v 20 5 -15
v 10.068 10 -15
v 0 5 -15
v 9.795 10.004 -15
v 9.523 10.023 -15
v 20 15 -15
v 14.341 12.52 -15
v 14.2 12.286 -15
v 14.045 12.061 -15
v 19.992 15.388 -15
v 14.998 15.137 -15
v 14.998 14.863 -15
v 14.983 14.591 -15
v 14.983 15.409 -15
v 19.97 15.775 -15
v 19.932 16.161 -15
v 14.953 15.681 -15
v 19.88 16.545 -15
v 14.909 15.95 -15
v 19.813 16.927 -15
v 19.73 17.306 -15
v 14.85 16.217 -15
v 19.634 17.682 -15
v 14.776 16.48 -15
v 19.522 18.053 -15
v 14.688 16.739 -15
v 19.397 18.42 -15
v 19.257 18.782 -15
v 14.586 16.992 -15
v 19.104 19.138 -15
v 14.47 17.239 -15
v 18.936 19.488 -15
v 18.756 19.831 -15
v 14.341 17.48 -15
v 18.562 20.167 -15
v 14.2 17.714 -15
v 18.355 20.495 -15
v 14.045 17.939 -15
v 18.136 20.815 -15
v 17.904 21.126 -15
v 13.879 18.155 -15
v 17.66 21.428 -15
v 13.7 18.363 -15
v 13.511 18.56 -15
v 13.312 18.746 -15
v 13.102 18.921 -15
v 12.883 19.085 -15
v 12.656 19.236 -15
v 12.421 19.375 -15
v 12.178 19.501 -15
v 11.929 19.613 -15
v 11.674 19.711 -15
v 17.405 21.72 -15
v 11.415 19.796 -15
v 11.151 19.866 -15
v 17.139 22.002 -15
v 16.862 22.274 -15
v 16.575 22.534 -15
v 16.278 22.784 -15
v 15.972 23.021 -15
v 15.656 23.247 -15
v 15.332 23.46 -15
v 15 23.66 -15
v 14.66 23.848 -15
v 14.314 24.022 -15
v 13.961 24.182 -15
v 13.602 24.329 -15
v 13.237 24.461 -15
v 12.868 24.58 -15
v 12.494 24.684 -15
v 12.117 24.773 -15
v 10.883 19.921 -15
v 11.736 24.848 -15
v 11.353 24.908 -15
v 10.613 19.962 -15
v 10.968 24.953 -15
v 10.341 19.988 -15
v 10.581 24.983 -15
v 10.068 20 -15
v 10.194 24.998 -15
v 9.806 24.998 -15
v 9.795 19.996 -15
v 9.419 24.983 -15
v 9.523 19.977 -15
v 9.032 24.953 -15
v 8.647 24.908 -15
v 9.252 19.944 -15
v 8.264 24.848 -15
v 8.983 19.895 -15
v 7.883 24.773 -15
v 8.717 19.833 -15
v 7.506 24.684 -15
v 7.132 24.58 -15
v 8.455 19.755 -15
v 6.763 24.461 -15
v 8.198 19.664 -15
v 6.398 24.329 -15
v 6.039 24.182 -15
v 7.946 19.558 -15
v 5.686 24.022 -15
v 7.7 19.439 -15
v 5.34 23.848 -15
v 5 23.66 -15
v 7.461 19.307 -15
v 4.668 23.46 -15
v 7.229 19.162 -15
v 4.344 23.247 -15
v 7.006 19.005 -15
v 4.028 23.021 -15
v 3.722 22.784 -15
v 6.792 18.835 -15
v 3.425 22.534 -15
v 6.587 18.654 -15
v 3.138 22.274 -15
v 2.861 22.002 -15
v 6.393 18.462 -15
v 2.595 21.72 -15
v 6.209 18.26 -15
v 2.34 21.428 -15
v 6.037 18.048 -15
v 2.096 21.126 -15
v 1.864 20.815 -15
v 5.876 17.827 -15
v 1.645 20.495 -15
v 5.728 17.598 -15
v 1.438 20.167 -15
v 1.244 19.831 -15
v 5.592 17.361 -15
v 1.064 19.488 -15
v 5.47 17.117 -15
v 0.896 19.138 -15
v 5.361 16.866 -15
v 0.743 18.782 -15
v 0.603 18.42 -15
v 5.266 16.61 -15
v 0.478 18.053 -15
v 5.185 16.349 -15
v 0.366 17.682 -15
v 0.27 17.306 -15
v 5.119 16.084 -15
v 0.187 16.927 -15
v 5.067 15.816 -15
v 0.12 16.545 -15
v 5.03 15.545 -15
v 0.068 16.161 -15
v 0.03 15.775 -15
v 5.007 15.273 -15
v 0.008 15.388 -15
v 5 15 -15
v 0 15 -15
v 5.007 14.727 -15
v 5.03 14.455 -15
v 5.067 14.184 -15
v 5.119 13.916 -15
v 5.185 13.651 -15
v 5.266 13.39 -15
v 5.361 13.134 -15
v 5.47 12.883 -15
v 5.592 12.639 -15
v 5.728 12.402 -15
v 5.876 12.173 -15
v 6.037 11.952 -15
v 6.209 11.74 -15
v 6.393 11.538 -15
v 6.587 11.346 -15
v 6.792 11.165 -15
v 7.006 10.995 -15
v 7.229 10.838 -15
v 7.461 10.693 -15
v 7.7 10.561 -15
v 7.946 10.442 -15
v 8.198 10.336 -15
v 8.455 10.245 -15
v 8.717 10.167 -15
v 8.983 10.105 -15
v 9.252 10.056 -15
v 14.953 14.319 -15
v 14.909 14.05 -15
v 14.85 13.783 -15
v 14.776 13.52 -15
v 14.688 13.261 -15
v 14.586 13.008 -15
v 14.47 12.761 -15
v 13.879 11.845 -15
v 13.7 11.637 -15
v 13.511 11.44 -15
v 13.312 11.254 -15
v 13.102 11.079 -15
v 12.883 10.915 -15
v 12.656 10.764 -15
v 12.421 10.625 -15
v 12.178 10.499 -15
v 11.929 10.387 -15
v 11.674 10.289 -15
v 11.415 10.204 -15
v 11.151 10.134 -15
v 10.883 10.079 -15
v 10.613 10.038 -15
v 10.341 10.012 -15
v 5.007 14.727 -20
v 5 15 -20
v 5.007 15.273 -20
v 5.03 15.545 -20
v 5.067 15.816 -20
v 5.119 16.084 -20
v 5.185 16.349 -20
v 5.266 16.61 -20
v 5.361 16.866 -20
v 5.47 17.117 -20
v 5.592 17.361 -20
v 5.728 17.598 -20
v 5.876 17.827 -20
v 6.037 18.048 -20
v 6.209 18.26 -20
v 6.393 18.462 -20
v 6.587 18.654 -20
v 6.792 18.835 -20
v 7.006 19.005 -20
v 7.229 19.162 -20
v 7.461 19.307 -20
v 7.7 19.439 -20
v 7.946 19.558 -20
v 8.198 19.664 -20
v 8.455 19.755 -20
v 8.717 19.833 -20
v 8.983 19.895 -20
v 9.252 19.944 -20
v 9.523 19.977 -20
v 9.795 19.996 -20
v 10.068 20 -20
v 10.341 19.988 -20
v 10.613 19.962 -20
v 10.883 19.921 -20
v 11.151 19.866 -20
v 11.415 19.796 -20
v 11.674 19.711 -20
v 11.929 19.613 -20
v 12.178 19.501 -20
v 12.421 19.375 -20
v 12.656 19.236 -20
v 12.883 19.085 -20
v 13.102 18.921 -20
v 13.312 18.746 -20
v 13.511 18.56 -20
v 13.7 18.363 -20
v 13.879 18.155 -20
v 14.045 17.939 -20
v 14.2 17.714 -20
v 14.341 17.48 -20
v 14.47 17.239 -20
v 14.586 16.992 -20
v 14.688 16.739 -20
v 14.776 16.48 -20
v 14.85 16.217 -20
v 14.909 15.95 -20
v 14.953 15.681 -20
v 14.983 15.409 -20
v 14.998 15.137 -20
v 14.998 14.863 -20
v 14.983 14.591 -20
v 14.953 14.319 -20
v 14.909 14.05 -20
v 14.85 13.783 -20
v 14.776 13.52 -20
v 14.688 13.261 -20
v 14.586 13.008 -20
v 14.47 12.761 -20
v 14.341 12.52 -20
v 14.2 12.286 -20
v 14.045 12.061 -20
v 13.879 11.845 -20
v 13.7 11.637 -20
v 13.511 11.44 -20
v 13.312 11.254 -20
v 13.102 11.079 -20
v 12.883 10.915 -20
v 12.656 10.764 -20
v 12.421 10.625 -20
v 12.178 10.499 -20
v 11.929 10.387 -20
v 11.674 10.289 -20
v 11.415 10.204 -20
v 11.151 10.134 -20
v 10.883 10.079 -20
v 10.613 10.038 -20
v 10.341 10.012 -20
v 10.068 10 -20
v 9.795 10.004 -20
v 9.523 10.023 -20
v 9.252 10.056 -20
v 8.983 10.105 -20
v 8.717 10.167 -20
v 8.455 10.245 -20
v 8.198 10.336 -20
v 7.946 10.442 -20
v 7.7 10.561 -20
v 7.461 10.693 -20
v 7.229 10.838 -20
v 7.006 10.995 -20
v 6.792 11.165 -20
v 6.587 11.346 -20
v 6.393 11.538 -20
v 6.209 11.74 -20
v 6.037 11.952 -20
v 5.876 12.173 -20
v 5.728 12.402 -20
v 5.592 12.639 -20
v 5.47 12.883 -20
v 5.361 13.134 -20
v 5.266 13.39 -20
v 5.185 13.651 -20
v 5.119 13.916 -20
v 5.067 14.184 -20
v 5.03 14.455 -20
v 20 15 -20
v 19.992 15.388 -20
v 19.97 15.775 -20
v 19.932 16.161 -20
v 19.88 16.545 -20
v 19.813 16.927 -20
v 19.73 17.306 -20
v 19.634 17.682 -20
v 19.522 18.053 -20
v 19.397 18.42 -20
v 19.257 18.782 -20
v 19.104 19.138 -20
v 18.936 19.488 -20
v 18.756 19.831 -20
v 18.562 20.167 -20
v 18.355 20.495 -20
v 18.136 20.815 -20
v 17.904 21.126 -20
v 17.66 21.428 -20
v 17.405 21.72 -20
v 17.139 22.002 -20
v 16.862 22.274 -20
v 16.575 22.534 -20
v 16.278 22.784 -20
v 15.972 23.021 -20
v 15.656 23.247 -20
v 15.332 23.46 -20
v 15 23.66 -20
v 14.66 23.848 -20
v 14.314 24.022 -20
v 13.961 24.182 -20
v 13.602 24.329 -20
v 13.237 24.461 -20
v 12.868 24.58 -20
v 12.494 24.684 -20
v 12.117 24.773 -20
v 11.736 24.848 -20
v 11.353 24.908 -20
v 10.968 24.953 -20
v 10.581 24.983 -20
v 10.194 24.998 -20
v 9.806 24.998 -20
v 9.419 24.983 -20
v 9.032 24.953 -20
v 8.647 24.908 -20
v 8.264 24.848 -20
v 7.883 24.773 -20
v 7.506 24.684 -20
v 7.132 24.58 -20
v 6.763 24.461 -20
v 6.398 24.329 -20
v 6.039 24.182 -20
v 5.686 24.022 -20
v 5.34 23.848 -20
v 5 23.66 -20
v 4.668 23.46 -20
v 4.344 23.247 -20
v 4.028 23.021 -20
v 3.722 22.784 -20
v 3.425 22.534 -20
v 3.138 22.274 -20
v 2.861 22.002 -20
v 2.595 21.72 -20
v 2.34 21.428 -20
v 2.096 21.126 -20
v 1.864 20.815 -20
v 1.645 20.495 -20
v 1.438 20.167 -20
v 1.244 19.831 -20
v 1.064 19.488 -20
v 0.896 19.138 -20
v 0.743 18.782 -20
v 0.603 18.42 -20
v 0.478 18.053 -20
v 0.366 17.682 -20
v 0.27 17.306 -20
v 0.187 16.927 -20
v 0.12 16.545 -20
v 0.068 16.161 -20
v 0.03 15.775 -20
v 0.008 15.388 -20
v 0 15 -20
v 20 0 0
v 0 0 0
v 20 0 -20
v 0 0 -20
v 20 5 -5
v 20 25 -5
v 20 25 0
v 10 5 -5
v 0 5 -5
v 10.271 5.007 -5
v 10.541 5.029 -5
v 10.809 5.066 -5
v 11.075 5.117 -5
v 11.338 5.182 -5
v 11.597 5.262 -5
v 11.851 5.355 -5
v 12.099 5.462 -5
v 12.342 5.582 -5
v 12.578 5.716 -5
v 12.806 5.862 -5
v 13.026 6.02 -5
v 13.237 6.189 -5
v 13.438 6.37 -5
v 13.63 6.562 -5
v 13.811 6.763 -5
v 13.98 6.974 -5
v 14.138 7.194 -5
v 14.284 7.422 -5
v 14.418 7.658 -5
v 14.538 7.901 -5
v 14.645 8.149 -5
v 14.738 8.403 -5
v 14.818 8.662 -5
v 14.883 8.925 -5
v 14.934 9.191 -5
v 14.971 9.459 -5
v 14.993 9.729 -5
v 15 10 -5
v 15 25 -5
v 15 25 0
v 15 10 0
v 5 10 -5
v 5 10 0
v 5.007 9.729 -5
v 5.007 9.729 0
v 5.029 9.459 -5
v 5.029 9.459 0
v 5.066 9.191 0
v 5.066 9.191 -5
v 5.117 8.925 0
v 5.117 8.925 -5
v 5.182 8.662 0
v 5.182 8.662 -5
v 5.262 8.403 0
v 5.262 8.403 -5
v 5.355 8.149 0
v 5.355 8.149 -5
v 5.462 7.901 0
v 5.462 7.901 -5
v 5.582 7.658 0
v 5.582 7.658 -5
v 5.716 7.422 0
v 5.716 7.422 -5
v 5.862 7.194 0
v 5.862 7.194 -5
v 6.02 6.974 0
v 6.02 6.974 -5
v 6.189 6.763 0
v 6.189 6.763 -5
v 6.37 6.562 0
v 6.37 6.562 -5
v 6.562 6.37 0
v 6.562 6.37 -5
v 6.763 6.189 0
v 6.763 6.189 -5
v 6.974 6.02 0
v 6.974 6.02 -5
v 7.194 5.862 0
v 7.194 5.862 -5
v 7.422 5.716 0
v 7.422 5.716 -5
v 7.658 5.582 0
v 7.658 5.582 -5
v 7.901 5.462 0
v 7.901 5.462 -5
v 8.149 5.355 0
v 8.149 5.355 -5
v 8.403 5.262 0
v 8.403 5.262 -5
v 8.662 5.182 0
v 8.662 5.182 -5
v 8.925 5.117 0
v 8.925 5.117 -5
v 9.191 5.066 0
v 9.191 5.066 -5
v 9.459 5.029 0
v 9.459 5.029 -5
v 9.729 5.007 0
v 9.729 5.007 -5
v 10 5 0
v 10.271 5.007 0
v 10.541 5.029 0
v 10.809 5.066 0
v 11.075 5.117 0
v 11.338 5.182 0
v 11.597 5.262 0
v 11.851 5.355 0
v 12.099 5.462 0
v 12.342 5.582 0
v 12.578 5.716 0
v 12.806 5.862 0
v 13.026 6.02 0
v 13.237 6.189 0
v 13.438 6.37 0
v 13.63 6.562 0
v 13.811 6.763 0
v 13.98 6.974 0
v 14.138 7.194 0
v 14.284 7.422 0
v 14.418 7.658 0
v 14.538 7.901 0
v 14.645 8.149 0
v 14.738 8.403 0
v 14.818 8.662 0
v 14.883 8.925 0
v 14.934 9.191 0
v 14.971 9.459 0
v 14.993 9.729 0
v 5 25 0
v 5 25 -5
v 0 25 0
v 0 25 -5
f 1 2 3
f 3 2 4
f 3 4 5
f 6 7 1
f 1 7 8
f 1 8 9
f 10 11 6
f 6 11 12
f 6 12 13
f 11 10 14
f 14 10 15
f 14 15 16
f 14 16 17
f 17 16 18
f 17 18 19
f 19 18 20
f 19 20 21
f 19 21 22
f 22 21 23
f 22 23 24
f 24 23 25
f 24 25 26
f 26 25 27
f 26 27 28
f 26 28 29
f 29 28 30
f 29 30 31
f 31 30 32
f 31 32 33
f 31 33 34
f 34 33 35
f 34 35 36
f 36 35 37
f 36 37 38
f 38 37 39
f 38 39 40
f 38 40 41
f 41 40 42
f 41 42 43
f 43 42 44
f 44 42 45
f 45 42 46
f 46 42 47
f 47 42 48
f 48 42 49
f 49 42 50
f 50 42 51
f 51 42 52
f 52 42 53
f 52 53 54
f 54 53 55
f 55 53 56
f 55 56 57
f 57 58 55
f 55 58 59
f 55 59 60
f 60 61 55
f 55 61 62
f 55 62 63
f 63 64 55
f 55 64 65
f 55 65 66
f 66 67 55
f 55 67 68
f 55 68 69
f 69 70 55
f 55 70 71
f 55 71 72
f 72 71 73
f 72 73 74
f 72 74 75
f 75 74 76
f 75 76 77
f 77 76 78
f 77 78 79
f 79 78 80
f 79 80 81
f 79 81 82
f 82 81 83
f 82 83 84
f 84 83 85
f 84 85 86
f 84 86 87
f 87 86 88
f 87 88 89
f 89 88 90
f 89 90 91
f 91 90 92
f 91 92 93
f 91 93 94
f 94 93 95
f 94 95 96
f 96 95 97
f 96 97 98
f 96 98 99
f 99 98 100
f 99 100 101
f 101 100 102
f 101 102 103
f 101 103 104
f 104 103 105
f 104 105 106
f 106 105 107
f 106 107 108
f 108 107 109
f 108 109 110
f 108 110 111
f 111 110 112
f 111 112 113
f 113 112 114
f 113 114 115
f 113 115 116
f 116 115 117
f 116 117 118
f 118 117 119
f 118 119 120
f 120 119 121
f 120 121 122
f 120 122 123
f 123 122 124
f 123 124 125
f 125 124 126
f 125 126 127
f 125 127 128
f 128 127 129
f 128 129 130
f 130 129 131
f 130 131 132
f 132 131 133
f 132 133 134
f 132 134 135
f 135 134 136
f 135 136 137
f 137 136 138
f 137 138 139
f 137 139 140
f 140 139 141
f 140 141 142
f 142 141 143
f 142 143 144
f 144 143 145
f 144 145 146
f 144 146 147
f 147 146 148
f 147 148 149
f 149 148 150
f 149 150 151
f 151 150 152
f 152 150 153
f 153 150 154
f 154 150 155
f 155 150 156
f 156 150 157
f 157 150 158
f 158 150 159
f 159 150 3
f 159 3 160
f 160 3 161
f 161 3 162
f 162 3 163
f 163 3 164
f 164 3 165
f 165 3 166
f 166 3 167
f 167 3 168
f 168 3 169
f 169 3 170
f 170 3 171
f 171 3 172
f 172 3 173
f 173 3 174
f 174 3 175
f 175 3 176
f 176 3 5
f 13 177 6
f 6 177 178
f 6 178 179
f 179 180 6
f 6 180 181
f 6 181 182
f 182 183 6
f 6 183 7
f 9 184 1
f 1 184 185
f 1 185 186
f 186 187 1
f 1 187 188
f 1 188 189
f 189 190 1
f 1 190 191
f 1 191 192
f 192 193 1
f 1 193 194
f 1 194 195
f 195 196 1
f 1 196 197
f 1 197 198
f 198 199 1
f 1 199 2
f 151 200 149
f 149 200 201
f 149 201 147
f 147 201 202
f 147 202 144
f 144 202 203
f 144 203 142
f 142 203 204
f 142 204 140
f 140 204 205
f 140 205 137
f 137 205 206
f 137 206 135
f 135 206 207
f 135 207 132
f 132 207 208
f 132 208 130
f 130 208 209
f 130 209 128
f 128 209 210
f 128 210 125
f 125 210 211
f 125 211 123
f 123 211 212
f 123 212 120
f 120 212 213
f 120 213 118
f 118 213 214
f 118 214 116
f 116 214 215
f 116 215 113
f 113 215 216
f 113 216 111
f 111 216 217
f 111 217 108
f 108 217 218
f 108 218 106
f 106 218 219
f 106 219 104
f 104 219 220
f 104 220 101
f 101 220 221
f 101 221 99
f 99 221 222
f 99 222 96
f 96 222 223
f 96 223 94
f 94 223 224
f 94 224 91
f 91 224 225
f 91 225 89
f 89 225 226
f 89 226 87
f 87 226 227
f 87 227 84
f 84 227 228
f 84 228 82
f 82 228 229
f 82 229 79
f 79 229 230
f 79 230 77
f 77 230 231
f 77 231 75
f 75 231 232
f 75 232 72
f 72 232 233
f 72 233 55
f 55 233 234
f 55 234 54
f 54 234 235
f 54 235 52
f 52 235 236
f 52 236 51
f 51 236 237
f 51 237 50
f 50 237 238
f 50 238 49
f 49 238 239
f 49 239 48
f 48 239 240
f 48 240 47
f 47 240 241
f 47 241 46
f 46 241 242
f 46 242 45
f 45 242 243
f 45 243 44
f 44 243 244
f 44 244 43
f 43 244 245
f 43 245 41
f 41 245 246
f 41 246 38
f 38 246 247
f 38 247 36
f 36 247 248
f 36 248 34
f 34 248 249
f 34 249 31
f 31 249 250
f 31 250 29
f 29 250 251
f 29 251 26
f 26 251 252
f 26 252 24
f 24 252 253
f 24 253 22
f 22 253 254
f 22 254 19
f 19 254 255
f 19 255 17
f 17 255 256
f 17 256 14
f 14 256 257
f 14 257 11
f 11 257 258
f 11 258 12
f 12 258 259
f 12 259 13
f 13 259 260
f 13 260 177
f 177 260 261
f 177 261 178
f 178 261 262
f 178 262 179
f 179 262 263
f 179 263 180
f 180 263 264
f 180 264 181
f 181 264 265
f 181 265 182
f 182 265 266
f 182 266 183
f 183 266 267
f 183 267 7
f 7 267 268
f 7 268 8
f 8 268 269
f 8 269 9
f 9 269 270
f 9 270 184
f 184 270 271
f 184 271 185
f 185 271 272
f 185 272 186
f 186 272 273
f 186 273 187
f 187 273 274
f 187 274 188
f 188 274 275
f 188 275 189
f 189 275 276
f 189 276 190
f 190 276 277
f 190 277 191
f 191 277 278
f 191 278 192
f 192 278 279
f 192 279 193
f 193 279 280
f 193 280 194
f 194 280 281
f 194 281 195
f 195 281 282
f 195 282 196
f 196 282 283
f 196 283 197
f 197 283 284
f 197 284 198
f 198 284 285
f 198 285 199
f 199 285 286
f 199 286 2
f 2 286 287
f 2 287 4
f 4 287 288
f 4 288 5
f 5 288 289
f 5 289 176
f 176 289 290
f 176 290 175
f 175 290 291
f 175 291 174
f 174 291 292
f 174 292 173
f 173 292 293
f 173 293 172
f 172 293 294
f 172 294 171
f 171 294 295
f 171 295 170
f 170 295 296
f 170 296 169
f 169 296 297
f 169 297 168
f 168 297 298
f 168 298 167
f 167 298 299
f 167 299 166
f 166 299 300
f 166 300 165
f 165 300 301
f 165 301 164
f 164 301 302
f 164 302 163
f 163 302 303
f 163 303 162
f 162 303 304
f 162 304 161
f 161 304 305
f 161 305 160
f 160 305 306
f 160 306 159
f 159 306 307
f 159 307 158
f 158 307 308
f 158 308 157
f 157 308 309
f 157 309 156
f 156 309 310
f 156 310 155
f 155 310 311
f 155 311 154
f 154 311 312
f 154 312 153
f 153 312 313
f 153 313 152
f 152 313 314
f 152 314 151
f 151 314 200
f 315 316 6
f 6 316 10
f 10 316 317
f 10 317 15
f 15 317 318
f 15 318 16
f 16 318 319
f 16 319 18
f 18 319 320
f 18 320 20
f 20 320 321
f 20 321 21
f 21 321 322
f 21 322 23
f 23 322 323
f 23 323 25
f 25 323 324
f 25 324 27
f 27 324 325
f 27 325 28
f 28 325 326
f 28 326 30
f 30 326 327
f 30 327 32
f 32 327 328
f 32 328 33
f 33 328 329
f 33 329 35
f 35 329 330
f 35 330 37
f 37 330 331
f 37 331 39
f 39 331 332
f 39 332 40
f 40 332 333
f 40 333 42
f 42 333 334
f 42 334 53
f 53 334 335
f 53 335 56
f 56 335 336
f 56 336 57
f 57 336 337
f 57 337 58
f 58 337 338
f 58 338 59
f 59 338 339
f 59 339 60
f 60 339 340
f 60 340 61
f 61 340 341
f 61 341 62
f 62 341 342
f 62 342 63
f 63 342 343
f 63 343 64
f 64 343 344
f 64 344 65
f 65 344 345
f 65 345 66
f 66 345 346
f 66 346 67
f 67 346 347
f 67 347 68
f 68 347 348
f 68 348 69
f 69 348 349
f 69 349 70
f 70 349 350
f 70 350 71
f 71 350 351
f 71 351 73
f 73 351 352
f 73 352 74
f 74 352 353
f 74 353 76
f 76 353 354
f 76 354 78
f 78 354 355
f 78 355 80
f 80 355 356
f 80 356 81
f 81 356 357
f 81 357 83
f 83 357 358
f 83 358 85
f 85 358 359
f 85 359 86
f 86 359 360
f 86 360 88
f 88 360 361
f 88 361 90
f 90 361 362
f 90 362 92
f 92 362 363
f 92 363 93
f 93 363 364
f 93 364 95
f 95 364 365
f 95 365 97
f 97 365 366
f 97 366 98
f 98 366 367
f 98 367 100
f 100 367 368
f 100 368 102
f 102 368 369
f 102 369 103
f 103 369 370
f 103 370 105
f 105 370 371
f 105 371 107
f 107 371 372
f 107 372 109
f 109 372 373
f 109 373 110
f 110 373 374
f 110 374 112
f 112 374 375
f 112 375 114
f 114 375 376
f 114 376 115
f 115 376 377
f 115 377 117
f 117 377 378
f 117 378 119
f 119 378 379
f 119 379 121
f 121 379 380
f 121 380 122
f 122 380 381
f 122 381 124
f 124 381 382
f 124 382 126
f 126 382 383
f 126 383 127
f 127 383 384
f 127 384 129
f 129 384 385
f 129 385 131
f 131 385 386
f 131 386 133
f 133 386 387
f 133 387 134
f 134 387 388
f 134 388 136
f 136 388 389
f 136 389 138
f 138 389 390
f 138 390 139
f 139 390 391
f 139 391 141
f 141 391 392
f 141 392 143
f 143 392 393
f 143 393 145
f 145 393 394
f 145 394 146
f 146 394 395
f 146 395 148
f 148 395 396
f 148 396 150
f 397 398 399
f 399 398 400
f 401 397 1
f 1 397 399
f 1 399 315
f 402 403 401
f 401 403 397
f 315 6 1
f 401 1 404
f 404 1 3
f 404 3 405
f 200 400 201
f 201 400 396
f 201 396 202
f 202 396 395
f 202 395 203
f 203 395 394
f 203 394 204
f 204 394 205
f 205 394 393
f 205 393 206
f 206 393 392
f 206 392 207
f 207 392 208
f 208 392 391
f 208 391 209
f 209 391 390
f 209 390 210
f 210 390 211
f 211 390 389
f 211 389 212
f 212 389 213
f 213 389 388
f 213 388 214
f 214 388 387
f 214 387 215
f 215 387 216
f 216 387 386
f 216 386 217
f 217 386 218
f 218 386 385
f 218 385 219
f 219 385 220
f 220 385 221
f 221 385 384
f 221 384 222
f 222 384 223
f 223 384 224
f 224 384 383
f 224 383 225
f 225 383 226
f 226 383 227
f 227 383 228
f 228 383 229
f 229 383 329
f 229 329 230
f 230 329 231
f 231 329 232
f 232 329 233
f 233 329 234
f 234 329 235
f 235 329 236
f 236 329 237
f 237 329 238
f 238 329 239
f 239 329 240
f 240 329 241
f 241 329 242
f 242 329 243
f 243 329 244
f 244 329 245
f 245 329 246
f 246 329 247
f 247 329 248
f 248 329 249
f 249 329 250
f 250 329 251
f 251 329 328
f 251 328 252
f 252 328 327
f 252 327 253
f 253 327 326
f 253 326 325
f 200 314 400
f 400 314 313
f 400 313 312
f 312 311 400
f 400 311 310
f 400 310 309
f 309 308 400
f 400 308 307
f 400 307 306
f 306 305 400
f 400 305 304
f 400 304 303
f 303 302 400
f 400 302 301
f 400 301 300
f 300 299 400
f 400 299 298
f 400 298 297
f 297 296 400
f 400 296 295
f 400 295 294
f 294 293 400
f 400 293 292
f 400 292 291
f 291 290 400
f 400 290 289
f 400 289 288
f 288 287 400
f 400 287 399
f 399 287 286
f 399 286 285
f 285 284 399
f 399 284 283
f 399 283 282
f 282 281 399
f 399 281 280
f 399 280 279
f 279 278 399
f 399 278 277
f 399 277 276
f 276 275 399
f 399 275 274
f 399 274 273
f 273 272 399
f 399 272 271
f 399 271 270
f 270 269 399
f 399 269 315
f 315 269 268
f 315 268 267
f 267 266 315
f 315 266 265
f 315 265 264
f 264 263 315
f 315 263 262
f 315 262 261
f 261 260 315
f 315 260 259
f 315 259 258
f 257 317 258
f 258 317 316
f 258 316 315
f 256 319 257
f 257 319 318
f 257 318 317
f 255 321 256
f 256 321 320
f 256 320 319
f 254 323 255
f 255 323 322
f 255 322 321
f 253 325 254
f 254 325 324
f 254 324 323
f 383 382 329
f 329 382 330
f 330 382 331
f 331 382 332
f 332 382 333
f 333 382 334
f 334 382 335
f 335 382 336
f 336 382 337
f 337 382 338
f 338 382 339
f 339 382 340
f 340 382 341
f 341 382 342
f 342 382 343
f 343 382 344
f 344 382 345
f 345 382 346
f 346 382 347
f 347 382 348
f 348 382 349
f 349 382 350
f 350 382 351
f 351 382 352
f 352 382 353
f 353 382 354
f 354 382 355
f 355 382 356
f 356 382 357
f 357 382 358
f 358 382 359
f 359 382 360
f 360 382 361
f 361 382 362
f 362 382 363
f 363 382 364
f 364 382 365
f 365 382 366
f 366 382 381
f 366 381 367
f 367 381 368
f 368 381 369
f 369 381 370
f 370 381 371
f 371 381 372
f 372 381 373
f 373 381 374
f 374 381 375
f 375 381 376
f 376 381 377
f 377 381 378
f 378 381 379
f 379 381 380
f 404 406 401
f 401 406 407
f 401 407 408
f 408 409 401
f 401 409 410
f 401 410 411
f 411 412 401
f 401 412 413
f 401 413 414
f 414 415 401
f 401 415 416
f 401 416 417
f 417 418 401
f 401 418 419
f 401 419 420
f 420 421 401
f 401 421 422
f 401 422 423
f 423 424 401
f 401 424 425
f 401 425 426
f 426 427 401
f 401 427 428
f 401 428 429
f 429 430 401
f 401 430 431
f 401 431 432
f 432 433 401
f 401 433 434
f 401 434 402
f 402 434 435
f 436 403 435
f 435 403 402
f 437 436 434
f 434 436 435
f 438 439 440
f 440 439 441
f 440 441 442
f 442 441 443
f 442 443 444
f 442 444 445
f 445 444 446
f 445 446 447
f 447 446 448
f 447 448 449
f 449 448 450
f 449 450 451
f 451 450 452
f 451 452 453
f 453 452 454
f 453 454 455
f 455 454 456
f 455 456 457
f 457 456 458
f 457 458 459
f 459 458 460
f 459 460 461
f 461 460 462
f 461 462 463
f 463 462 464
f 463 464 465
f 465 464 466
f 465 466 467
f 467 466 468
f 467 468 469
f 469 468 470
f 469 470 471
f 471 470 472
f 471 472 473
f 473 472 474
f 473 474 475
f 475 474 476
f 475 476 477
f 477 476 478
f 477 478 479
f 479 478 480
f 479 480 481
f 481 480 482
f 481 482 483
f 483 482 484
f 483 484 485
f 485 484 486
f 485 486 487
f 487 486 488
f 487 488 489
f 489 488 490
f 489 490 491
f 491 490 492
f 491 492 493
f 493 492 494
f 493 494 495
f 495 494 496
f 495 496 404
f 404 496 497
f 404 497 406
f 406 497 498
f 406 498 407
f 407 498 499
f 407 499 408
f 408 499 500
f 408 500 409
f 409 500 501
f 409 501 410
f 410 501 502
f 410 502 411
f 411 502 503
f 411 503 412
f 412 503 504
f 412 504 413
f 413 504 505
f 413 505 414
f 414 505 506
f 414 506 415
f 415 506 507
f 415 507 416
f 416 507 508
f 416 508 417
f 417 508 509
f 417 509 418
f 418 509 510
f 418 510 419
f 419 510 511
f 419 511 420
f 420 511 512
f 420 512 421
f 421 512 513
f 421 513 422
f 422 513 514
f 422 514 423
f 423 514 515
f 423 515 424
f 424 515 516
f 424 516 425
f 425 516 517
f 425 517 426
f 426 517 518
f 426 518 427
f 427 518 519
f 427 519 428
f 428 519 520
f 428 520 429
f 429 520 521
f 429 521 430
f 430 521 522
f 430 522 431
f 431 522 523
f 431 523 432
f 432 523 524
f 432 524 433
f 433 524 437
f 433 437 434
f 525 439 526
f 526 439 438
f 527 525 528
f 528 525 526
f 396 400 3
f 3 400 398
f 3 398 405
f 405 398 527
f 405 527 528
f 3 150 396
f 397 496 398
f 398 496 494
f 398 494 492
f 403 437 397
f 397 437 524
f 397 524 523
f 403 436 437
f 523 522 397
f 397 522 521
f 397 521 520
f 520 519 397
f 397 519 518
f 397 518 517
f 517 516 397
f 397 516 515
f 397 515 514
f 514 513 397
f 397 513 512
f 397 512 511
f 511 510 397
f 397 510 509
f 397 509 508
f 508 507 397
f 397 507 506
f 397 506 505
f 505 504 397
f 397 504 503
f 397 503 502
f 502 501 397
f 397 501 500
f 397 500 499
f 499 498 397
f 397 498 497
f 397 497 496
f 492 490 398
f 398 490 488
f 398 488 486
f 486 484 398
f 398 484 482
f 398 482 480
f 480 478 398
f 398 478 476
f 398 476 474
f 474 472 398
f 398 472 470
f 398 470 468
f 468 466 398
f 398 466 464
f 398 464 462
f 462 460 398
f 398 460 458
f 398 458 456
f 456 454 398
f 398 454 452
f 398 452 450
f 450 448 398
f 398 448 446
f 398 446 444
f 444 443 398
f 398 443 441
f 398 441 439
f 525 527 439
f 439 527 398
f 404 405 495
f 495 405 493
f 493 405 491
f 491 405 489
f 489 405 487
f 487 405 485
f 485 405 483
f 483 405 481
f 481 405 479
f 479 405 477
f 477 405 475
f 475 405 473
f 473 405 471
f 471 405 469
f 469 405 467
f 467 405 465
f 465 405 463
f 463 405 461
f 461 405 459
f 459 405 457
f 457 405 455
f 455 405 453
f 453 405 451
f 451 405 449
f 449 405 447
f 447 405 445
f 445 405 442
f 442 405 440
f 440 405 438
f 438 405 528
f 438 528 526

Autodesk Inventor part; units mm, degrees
ref_plane "YZ Plane" through (0, 0, 0) normal (1, 0, 0) x (0, 1, 0)
ref_plane "XZ Plane" through (0, 0, 0) normal (0, 1, 0) x (-1, 0, 0)
ref_plane "XY Plane" through (0, 0, 0) normal (0, 0, 1) x (1, 0, 0)
sketch "Sketch1" plane through (0, 0, 0) normal (0, 0, 1) x (1, 0, 0)
  line L0 (0, 0) -> (20, 0)
  line L1 (20, 0) -> (20, 25)
  line L2 (20, 25) -> (15, 25)
  line L3 (15, 25) -> (15, 10)
  line L4 (10, 5) -> (10, 5)
  line L5 (5, 10) -> (5, 25)
  line L6 (5, 25) -> (0, 25)
  line L7 (0, 25) -> (0, 0)
  arc A0 (5, 10) -> (10, 5) centre (10, 10) ccw
  arc A1 (10, 5) -> (15, 10) centre (10, 10) ccw
  point P0 (15, 5)
  point P1 (5, 5)
  dimension "d0" = 20
  dimension "d1" = 25
  dimension "d2" = 5
  dimension "d3" = 20
  dimension "d4" = 10
  dimension "d5" = 5
extrude "Extrusion1" add sketch "Sketch1" against normal blind 5
sketch "Sketch2" plane through (0, 0, -5) normal (0, 0, -1) x (-1, 0, 0)
  line L0 (0, 25) -> (0, 0) projected
  line L1 (-20, 25) -> (-20, 0) projected
  line L2 (0, 0) -> (-20, 0)
  line L3 (-20, 0) -> (-20, 5)
  line L4 (-20, 5) -> (0, 5)
  line L5 (0, 5) -> (0, 0)
  dimension "d8" = 5
extrude "Extrusion2" add sketch "Sketch2" along normal blind 15
sketch "Sketch3" plane through (0, 0, -20) normal (0, 0, -1) x (-1, 0, 0)
  line L0 (-20, 25) -> (-20, 5) projected
  line L1 (0, 0) -> (-20, 0)
  line L2 (-20, 0) -> (-20, 15)
  line L3 (-10, 25) -> (-10, 25)
  line L4 (0, 15) -> (0, 0)
  arc A0 (-10, 25) -> (-20, 15) centre (-10, 15) ccw
  arc A1 (0, 15) -> (-10, 25) centre (-10, 15) ccw
  circle A2 centre (-10, 15) radius 5
  dimension "d11" = 10
  dimension "d12" = 10
extrude "Extrusion3" add sketch "Sketch3" against normal blind 5
